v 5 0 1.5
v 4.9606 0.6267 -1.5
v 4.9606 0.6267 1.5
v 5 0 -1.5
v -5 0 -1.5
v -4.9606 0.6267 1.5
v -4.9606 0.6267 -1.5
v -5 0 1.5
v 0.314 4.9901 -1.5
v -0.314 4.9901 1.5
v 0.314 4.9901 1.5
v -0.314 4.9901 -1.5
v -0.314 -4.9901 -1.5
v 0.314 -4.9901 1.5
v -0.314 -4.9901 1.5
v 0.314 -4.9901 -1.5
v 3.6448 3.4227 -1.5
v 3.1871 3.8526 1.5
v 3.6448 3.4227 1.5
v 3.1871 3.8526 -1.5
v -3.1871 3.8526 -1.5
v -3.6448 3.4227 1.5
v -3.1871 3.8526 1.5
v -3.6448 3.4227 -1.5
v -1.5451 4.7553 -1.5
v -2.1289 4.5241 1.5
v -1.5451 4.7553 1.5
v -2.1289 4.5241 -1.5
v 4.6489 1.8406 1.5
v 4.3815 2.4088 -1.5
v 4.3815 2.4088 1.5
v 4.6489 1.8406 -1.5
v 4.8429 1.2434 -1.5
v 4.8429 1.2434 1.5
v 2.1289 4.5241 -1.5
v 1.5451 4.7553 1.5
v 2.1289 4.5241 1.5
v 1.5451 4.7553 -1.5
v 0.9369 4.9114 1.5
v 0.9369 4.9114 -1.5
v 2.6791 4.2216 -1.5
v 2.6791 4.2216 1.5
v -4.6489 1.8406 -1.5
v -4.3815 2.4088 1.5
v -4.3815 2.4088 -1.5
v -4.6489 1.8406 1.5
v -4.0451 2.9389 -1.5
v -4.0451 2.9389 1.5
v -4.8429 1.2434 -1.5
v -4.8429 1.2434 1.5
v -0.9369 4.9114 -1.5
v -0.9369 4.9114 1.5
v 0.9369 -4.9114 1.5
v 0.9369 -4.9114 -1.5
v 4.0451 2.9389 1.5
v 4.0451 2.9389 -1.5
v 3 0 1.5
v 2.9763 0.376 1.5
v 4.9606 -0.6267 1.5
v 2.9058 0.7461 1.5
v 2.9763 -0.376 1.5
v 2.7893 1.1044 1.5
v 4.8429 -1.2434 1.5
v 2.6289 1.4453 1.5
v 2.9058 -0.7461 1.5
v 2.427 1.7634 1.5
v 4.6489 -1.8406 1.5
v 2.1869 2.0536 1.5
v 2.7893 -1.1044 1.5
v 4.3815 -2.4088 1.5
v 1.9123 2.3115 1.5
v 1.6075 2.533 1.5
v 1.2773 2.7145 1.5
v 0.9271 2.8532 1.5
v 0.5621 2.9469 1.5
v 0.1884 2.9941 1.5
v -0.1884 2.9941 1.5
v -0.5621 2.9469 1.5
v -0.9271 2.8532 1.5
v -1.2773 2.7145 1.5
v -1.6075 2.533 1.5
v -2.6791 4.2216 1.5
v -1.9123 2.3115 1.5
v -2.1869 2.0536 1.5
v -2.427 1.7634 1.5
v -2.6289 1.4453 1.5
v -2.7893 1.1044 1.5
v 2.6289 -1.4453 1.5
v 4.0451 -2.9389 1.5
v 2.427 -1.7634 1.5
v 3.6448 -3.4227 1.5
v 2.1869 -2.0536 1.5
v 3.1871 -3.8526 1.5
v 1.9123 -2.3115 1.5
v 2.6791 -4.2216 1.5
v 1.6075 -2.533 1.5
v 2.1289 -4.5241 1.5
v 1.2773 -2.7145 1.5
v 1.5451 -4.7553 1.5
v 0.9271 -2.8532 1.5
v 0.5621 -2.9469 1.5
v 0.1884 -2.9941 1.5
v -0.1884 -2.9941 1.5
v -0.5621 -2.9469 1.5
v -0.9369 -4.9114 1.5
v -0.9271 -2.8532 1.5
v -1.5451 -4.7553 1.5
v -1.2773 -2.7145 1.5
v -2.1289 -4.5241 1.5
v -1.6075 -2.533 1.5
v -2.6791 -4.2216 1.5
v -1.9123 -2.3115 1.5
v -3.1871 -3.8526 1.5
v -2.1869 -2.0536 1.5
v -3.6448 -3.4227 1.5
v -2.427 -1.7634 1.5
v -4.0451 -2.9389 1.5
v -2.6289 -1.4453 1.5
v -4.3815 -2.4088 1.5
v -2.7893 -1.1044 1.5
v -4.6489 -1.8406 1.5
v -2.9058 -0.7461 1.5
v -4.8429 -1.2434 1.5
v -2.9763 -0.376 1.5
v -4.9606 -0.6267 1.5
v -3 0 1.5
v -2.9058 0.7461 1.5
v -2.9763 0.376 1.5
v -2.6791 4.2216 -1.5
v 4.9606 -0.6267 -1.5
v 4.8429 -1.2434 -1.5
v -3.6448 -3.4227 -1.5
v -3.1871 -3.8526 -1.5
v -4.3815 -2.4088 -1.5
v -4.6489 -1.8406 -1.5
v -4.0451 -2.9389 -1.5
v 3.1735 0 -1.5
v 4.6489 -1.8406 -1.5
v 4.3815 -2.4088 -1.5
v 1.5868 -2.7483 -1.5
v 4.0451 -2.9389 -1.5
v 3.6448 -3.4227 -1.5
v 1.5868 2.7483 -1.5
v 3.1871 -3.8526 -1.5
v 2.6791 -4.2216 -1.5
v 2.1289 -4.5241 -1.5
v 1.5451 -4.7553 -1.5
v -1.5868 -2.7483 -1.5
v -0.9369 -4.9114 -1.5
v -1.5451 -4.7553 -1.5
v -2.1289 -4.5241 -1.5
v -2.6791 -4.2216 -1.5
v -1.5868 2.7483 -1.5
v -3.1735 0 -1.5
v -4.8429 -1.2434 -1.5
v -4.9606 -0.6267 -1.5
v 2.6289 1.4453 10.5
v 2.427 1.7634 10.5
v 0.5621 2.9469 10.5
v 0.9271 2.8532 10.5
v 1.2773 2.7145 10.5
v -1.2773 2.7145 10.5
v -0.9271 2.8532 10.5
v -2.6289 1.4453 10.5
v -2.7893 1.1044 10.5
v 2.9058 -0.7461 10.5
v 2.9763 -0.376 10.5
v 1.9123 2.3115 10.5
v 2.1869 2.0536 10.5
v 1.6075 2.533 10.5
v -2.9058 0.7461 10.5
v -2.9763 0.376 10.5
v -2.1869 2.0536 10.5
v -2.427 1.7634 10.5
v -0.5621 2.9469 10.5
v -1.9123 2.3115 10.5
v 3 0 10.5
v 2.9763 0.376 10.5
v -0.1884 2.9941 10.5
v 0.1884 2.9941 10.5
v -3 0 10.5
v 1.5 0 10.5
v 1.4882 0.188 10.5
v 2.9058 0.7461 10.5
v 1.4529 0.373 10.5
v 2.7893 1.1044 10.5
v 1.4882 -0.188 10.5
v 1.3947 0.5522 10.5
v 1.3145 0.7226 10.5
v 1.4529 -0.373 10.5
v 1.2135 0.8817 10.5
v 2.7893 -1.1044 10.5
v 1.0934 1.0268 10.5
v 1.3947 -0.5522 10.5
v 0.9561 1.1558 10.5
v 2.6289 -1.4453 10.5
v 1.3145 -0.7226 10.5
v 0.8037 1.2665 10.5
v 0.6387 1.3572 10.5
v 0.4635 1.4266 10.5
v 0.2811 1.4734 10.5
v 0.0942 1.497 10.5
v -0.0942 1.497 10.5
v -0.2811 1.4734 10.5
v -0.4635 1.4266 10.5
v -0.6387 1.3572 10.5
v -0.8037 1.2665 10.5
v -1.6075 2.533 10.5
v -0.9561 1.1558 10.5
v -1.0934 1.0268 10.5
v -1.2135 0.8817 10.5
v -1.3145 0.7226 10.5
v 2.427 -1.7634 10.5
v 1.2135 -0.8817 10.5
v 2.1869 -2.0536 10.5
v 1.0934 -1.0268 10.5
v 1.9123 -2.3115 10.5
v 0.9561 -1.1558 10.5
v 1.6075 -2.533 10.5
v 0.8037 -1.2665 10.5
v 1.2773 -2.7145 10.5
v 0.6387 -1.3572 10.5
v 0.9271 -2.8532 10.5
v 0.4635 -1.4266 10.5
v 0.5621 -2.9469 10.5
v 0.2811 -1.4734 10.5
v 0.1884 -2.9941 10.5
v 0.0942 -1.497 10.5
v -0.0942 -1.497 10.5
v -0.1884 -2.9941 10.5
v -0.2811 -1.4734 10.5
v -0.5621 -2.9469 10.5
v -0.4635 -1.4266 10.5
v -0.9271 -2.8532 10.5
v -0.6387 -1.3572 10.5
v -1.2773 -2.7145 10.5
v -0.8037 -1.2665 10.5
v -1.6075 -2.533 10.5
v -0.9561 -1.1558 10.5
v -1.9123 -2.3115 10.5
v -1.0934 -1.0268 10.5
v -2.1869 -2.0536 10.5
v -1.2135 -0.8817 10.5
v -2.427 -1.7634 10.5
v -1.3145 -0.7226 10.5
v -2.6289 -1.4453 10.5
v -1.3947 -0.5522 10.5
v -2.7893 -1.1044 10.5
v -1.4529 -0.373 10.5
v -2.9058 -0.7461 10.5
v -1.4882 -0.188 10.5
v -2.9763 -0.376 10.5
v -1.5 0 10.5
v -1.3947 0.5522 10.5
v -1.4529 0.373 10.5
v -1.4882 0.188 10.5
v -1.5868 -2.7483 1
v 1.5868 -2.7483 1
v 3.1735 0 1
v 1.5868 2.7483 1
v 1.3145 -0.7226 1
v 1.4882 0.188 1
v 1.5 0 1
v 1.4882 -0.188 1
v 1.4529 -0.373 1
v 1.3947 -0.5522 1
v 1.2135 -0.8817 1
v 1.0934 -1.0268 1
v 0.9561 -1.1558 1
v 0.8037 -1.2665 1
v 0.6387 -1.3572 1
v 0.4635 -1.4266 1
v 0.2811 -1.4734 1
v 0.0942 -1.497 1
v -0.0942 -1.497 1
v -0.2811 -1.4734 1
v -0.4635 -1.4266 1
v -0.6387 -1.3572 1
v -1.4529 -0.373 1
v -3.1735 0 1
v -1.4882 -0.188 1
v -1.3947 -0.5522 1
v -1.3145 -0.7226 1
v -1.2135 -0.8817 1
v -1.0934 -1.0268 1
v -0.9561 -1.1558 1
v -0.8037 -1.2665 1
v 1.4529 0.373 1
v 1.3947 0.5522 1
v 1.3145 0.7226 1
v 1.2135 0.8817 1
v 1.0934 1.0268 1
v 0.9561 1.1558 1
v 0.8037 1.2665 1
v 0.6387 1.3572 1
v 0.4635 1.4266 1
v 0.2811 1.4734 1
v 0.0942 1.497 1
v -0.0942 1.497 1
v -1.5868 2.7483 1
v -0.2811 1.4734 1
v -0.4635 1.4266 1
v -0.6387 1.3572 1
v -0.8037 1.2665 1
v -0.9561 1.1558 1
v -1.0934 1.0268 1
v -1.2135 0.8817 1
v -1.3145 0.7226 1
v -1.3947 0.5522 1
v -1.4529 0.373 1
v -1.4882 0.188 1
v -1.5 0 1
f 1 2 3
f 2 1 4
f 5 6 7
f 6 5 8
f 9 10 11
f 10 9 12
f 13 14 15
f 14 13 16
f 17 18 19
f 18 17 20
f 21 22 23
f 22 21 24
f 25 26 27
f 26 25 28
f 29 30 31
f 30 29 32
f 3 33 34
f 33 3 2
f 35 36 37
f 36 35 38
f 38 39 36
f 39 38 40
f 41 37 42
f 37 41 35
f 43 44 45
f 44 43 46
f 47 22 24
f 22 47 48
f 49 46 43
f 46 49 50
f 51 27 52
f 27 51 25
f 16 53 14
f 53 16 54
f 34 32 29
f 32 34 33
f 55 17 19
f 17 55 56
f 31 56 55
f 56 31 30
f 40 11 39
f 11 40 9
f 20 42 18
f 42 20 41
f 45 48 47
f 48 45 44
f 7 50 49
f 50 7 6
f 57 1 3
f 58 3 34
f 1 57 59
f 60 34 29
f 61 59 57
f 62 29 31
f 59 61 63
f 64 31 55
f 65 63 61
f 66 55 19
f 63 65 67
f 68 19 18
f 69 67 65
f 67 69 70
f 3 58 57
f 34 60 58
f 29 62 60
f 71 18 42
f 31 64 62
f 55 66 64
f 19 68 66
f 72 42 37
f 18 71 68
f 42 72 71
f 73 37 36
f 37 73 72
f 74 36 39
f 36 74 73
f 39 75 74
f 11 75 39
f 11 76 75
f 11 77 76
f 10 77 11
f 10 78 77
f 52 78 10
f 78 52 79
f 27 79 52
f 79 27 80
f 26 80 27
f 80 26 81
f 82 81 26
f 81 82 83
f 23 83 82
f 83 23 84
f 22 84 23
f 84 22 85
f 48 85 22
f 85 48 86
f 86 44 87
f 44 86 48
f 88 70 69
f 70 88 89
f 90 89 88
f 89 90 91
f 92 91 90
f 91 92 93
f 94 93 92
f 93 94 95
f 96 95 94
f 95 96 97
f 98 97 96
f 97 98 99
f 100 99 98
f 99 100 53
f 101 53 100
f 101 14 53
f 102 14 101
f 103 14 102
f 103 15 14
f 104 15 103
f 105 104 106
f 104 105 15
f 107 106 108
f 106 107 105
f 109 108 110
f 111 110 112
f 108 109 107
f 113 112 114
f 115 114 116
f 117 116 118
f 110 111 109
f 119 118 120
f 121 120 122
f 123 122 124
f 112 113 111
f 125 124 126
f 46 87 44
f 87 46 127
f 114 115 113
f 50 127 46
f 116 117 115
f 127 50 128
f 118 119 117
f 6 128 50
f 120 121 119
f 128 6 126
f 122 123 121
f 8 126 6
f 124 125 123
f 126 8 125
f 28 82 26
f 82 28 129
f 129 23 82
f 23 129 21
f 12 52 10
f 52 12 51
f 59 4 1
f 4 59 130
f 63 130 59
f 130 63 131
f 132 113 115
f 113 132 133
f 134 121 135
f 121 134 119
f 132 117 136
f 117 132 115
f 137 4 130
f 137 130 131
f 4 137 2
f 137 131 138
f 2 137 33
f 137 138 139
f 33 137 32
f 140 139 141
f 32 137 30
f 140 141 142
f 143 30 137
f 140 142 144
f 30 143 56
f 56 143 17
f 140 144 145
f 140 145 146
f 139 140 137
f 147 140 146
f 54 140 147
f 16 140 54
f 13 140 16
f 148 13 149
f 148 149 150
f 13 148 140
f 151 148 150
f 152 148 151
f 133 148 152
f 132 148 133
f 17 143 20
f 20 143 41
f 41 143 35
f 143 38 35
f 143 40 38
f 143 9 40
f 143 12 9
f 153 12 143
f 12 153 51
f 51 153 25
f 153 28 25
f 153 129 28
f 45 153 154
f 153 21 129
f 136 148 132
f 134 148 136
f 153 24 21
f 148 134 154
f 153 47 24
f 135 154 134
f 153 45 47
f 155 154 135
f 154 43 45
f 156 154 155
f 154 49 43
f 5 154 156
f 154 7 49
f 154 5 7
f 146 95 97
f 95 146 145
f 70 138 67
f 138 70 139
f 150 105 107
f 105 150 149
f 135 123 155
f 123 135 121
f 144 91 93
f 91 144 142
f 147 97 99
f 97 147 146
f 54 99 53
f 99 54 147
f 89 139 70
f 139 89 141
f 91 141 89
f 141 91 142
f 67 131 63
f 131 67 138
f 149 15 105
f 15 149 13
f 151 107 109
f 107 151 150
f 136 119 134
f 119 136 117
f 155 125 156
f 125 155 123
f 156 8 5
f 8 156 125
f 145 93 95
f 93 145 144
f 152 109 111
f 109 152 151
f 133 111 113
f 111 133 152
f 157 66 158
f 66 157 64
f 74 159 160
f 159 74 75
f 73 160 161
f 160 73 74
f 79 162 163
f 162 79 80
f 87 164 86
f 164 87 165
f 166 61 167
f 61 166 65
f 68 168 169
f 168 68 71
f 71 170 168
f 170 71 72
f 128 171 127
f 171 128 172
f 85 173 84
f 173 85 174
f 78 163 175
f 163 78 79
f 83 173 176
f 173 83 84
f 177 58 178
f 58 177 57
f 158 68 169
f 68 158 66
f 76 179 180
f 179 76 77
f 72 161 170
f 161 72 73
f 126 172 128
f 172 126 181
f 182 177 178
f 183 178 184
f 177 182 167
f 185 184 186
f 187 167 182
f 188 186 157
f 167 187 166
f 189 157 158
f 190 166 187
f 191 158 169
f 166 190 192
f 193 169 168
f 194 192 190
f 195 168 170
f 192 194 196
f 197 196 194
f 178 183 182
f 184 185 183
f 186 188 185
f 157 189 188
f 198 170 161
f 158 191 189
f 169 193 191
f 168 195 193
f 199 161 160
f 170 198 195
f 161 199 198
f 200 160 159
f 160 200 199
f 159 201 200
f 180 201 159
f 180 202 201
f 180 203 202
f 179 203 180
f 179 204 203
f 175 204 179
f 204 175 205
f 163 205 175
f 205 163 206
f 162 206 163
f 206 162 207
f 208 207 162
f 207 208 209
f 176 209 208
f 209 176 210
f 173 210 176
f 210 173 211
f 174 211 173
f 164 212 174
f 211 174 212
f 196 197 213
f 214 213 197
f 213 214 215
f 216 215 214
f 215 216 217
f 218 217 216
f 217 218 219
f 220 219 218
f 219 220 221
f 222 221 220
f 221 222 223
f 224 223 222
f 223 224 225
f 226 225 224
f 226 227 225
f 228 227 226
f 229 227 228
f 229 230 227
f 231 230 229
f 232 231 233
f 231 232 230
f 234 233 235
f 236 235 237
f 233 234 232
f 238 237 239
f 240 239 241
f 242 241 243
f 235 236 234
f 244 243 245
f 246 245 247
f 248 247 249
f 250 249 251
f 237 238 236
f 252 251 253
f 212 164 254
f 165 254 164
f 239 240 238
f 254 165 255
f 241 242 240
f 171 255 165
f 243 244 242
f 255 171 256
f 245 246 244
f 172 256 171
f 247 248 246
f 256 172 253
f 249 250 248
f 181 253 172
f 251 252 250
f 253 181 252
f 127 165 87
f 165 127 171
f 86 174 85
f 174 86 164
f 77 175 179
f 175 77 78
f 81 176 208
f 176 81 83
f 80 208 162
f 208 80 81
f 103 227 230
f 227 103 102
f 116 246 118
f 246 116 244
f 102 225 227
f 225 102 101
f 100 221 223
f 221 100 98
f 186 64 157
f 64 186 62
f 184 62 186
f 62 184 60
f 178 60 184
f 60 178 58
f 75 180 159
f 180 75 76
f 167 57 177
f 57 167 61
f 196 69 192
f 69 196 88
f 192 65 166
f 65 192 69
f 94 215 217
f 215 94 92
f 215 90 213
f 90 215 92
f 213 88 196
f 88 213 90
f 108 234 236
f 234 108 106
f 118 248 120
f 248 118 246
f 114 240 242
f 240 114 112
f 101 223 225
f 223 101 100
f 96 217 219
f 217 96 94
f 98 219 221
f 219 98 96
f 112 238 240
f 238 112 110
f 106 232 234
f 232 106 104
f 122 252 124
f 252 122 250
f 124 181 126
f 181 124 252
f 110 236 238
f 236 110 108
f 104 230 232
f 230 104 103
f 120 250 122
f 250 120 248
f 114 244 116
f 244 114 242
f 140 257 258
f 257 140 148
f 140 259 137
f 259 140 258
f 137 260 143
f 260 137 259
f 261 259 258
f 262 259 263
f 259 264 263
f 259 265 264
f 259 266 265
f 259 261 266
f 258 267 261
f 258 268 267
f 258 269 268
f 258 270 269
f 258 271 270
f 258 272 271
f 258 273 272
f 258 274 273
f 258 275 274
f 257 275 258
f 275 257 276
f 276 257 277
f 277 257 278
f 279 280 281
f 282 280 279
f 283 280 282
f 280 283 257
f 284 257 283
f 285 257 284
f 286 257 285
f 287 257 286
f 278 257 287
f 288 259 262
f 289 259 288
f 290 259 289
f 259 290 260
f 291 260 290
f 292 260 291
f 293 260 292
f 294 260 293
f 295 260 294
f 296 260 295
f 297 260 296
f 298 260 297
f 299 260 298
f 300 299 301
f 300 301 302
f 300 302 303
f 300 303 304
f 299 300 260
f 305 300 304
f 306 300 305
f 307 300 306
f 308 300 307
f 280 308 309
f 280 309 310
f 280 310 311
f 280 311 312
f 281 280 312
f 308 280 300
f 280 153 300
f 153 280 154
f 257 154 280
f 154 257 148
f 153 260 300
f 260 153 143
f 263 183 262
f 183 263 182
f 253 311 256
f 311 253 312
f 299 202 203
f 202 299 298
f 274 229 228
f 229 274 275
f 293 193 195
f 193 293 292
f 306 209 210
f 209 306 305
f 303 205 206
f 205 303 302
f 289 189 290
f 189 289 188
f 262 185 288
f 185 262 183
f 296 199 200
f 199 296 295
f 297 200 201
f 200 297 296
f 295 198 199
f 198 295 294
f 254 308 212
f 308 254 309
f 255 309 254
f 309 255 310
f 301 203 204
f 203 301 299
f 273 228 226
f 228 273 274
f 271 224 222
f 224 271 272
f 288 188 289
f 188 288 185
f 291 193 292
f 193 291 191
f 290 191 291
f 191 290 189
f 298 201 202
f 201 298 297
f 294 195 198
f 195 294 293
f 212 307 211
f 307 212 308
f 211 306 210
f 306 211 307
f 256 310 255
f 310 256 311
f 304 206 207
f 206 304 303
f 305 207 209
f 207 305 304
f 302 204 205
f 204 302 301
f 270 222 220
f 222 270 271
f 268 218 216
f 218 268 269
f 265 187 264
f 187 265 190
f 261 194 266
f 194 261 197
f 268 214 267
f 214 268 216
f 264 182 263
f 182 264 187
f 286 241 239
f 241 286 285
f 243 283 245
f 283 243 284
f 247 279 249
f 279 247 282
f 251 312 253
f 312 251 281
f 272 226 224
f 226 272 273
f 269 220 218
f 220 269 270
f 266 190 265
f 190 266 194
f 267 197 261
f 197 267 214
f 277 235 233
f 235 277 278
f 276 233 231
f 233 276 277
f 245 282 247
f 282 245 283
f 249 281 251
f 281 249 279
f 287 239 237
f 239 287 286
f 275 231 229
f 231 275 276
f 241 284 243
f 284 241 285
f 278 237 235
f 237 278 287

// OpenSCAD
$fn = 50;


difference() {
	union() {
		translate(v = [0, 0, -1.5000000000]) {
			cylinder(h = 3, r = 5.0000000000);
		}
		translate(v = [0, 0, -1.5000000000]) {
			cylinder(h = 12, r = 3.0000000000);
		}
	}
	union() {
		translate(v = [0, 0, -1.5000000000]) {
			rotate(a = [0, 0, 0]) {
				difference() {
					union() {
						#linear_extrude(height = 2.5000000000) {
							polygon(points = [[3.1735000000, 0.0000000000], [1.5867500000, 2.7483316189], [-1.5867500000, 2.7483316189], [-3.1735000000, 0.0000000000], [-1.5867500000, -2.7483316189], [1.5867500000, -2.7483316189]]);
						}
					}
					union();
				}
			}
		}
		translate(v = [0, 0, -50.0000000000]) {
			cylinder(h = 100, r = 1.5000000000);
		}
	}
}
